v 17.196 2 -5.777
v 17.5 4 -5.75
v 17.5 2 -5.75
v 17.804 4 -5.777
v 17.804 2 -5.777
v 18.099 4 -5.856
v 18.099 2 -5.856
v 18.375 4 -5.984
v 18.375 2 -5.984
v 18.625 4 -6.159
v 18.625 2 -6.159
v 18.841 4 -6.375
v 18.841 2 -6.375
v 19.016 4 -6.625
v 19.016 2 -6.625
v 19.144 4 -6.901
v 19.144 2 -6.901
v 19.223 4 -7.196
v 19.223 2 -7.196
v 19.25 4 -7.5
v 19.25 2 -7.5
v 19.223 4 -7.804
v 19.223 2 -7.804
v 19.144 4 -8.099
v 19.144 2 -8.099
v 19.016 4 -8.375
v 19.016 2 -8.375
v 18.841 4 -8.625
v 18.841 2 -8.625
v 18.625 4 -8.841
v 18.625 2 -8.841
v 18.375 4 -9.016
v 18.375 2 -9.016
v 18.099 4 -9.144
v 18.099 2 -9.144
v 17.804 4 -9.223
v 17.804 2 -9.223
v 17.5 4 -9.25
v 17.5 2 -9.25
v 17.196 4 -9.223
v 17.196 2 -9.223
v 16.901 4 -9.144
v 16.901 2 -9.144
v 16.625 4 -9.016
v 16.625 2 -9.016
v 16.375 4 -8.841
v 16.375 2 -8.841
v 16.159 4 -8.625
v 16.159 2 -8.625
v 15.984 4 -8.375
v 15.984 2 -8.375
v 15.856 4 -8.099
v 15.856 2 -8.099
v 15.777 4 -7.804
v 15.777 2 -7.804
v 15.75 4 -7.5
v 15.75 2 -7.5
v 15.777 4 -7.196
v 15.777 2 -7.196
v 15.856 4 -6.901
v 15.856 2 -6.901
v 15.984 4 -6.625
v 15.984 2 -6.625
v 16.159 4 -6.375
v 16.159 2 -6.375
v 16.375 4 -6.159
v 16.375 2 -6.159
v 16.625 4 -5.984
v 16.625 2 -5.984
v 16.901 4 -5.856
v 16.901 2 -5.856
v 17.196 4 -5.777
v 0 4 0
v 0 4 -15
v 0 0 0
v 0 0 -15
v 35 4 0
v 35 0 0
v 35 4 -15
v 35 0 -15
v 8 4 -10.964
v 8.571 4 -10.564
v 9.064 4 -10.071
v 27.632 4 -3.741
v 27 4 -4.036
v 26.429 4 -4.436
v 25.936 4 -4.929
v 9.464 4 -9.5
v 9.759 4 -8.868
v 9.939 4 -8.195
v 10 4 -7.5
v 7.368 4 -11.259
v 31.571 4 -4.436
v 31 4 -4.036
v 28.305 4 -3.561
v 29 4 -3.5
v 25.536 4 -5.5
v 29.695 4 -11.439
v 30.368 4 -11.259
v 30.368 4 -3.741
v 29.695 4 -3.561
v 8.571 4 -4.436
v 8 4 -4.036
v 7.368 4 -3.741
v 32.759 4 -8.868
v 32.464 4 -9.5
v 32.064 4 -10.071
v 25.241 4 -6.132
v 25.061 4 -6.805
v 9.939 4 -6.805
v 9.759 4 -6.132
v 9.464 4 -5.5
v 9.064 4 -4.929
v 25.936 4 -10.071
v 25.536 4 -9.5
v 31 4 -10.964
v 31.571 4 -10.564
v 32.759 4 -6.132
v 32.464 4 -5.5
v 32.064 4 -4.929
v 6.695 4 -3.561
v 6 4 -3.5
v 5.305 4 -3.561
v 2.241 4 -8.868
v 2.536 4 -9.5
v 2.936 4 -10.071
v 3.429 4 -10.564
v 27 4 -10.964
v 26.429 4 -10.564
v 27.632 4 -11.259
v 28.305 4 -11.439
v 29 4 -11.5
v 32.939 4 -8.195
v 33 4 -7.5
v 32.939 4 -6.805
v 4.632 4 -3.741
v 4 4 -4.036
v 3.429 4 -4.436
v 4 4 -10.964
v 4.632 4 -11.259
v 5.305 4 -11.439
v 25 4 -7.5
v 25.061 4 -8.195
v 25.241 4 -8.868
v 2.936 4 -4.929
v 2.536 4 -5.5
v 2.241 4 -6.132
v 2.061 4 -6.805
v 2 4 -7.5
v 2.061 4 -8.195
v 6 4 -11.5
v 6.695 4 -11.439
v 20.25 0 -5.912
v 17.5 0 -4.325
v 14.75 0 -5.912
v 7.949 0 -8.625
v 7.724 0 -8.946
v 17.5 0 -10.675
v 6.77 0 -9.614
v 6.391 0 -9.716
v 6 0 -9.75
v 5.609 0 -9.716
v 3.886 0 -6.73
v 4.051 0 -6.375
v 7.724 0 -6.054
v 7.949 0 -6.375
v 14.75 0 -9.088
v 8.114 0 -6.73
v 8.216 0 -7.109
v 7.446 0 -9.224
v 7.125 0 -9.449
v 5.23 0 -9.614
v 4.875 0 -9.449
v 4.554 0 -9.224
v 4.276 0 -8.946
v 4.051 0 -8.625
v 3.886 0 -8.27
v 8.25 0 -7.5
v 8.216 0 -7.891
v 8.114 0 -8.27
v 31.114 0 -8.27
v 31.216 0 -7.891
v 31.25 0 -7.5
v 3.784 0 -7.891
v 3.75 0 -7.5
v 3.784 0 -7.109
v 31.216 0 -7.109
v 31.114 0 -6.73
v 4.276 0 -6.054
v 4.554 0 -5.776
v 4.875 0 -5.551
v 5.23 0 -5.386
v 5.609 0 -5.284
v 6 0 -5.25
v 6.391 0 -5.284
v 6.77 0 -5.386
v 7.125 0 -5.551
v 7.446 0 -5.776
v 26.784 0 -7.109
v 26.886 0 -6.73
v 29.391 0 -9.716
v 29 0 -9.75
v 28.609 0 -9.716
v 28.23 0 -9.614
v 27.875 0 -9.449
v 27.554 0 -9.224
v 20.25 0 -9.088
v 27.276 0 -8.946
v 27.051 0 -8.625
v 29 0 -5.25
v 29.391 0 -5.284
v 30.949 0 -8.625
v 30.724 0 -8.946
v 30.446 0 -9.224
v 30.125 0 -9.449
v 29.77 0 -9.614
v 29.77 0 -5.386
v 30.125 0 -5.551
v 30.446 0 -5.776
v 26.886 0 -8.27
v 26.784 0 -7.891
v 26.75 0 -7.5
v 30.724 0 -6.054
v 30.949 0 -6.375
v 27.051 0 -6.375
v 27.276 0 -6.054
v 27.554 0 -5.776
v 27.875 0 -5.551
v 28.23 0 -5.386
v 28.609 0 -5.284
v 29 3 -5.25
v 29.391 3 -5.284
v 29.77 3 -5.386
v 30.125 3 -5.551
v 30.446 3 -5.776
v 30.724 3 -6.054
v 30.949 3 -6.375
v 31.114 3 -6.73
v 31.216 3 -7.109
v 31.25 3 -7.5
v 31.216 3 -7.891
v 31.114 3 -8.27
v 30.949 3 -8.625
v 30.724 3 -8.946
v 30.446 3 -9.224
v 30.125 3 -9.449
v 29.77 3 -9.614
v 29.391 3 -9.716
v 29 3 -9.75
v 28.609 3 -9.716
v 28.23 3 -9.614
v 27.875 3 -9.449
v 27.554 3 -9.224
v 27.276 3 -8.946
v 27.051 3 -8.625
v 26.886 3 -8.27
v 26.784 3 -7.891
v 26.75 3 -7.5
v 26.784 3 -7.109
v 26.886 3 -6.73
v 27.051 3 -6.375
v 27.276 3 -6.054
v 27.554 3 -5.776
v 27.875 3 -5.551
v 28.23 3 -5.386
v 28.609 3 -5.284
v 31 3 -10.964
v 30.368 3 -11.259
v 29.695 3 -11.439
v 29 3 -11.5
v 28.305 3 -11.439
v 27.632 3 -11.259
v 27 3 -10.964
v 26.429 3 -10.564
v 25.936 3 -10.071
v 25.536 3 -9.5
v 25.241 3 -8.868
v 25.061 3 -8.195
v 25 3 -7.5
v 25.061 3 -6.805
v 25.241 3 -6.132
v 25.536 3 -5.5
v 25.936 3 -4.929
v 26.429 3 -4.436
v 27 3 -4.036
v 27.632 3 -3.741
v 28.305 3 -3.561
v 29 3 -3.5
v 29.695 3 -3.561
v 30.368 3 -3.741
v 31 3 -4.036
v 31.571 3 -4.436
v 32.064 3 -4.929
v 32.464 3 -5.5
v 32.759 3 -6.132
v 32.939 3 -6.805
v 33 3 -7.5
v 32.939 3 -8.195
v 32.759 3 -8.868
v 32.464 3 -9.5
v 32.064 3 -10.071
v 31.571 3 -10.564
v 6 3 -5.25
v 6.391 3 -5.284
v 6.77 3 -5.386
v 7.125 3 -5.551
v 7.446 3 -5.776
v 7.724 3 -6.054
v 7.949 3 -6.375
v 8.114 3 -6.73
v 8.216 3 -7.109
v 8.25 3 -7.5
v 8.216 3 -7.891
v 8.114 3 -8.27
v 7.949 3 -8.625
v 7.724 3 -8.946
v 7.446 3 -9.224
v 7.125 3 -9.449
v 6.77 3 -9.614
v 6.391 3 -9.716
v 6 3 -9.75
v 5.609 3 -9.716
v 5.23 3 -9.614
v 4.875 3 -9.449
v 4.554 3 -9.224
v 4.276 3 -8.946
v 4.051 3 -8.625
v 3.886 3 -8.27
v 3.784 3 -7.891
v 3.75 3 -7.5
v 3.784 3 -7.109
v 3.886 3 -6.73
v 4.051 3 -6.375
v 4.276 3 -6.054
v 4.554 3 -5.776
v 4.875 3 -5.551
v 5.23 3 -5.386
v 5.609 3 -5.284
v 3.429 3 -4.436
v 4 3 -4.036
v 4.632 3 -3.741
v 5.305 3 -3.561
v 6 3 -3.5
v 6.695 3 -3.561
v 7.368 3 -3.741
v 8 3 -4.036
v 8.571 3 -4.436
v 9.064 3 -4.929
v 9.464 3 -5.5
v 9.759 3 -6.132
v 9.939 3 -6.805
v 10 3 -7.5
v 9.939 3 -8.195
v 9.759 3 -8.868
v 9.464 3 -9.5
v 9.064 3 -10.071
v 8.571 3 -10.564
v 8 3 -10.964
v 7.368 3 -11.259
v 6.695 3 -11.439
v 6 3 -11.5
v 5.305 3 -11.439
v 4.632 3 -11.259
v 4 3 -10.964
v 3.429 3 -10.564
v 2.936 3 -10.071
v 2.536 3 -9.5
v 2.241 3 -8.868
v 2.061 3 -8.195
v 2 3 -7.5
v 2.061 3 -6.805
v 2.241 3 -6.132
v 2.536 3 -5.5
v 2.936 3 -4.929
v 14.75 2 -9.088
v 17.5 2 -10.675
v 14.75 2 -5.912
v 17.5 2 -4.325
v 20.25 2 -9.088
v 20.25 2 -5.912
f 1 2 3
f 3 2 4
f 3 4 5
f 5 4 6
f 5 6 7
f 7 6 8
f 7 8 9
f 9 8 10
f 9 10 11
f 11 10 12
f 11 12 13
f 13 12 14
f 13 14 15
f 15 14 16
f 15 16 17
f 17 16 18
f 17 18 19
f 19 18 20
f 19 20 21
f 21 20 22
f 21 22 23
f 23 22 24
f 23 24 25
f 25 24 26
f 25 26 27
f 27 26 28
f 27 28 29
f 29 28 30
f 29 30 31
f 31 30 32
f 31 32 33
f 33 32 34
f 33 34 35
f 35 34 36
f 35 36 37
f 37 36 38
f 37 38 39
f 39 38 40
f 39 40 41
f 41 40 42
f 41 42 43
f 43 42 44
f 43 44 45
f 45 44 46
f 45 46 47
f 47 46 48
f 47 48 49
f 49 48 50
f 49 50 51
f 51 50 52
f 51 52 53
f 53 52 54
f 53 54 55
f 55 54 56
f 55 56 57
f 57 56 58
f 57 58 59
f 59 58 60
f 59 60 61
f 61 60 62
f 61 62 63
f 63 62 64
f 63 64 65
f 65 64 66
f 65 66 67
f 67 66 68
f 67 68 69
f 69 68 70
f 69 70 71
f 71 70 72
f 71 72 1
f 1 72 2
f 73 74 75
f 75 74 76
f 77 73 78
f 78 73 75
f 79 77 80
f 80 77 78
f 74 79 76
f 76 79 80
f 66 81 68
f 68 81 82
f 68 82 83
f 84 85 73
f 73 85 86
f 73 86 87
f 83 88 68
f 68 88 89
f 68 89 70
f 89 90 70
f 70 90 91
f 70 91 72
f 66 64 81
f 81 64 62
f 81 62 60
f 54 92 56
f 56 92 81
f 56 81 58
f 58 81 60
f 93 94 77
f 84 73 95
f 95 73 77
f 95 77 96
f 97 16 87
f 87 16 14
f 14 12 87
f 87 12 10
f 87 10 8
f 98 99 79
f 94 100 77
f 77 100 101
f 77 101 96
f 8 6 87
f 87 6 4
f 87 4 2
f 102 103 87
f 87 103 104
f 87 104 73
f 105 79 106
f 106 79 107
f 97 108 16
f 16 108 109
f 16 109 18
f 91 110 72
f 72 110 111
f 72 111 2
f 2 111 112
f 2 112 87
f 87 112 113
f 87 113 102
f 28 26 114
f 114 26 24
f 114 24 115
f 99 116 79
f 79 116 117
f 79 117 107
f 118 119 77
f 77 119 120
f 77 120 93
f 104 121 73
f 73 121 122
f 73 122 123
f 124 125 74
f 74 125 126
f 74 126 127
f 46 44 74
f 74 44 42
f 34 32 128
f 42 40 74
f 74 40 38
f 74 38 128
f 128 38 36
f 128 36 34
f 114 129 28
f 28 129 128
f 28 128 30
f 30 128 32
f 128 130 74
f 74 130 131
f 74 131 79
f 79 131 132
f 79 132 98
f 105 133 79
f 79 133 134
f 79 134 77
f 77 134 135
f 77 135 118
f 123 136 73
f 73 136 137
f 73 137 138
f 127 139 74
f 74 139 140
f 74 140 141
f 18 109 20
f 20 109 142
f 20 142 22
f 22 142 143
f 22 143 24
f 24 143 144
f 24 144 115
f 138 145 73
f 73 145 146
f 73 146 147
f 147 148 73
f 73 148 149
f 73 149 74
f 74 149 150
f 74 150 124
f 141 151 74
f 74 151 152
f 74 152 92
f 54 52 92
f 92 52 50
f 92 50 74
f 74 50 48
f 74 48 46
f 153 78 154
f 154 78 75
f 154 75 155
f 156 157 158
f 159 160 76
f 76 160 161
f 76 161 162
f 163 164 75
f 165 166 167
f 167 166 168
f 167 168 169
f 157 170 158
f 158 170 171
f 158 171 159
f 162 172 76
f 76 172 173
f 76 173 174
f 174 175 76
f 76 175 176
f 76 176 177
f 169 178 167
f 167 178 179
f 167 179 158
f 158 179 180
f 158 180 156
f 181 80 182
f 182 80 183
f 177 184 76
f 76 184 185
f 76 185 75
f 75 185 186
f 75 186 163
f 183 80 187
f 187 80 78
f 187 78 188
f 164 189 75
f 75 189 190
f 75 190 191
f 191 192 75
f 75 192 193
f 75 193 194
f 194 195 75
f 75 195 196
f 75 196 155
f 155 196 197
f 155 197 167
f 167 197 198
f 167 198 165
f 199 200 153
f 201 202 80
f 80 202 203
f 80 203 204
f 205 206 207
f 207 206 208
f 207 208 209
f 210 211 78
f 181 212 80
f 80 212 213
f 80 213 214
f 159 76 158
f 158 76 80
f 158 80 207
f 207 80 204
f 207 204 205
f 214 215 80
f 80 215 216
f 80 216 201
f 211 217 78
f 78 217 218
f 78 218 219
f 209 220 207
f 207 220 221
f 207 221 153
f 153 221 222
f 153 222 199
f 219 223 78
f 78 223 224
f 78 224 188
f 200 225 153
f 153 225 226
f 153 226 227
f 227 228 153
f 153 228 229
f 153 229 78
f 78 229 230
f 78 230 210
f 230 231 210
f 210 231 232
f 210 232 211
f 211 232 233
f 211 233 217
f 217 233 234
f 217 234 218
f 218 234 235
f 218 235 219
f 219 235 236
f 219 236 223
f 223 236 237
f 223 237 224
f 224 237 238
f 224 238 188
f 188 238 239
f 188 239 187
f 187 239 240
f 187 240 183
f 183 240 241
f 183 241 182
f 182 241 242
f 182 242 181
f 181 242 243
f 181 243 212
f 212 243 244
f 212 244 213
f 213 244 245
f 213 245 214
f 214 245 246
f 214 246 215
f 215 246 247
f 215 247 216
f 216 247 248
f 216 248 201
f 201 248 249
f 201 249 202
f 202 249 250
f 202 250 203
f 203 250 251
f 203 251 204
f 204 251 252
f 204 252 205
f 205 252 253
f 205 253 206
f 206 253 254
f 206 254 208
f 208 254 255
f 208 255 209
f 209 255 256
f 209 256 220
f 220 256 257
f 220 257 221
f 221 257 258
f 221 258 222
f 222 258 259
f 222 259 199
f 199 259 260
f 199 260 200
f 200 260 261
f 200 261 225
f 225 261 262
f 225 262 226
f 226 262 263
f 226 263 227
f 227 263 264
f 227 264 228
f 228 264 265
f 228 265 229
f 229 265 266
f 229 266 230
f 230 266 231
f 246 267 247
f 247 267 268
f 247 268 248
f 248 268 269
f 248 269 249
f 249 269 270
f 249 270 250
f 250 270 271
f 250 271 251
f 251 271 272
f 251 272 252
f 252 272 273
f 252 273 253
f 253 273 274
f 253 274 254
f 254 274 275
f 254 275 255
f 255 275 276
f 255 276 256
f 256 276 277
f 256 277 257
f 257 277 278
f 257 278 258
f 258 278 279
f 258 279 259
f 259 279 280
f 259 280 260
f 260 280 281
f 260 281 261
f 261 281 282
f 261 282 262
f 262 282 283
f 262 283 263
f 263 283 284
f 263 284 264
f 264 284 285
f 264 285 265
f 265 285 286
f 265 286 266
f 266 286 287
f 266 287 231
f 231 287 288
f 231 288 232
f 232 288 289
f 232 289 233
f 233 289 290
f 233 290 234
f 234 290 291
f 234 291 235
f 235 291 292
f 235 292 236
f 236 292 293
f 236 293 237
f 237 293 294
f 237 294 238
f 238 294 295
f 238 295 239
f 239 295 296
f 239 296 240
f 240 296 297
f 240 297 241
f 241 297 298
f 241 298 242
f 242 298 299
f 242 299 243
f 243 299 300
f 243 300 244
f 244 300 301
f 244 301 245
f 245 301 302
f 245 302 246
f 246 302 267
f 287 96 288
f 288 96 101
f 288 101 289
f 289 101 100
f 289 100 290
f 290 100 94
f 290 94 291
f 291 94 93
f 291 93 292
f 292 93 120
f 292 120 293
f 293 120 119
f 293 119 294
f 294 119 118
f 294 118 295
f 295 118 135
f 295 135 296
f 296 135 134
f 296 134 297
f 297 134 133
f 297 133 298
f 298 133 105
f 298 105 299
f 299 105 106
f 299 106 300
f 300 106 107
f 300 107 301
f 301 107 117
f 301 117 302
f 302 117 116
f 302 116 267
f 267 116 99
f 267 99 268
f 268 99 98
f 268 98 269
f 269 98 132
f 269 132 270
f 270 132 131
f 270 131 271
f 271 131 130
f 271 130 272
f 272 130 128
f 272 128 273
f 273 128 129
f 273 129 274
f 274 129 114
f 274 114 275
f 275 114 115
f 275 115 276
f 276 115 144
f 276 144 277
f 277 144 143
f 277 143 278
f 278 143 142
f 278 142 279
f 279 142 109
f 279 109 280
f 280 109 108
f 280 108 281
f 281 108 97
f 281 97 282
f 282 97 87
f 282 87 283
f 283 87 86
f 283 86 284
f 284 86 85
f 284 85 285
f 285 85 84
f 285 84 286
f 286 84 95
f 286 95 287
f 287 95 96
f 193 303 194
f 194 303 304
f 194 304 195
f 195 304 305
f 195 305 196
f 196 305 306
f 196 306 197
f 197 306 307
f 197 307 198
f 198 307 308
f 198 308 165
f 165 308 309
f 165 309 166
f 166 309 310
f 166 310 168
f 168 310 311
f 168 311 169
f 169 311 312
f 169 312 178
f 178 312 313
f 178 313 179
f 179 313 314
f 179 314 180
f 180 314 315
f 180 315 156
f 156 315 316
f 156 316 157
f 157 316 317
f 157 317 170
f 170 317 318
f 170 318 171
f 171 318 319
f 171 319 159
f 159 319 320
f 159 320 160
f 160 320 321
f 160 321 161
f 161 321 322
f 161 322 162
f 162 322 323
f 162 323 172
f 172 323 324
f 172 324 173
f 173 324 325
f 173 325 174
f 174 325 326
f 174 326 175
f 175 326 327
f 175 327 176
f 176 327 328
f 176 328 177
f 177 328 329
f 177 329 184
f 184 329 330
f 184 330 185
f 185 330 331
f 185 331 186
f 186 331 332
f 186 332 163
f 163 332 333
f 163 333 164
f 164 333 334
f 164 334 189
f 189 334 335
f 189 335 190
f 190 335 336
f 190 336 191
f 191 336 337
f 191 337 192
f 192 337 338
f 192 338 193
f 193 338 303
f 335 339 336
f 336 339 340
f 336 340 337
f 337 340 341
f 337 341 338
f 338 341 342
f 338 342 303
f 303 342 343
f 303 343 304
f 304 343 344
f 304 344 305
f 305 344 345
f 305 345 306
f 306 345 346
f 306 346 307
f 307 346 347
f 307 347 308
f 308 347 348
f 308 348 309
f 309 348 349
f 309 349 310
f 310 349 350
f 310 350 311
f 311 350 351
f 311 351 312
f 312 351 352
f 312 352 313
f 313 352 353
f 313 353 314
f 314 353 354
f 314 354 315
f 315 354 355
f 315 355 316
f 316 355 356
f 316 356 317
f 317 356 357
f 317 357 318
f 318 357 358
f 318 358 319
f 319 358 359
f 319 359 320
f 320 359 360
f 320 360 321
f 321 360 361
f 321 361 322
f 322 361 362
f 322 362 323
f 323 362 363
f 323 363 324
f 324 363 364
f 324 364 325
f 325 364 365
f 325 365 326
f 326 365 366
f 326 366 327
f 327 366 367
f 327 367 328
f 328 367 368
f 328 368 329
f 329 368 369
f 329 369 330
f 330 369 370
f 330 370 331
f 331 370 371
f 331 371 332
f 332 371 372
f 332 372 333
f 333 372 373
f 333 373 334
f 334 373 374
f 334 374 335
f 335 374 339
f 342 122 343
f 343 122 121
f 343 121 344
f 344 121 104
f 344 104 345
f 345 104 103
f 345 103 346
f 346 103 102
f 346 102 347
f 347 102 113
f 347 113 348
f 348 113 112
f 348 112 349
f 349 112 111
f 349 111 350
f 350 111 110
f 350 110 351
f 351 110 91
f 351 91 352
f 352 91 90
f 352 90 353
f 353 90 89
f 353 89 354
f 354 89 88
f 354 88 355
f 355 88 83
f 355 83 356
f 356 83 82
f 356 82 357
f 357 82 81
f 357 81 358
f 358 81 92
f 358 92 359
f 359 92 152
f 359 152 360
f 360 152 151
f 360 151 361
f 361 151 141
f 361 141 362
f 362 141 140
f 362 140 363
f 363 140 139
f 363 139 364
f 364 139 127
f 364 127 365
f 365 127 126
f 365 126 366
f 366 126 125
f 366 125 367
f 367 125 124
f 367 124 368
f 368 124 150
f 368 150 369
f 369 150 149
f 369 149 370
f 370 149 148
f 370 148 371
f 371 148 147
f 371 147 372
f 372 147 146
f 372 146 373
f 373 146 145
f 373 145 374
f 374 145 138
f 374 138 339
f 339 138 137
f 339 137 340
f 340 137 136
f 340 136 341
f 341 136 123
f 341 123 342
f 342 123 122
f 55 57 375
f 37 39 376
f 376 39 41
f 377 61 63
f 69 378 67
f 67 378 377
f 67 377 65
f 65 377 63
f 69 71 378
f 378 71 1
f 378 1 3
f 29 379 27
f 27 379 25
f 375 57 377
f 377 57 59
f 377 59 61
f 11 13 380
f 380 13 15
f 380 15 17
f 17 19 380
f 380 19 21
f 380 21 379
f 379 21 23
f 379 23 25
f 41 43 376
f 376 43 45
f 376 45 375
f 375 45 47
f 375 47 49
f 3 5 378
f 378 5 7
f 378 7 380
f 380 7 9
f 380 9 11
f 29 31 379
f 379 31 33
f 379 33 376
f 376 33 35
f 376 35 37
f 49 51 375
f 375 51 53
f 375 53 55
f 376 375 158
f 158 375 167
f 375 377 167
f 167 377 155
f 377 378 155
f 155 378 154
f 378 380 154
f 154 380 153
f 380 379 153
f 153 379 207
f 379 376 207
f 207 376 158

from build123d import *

# Parameters (mm, degrees)
SKETCH_1_W                = 35
SKETCH_1_H                = 15
EXTRUDE_1_DEPTH           = 4
HOLE_WIZARD_3_5_3_5_1_D   = 3.5
HOLE_WIZARD_1_D           = 4.5
HOLE_WIZARD_1_CBORE_D     = 8
HOLE_WIZARD_1_CBORE_DEPTH = 1
CUT_EXTRUDE_1_DEPTH       = 2


with BuildPart() as part:
    # 草圖1 → 填料-伸長1 (new body)
    with BuildSketch(Plane(origin=(0, 0, 0), x_dir=(1, 0, 0), z_dir=(0, 1, 0))):
        with Locations((17.5, 7.5)):
            Rectangle(SKETCH_1_W, SKETCH_1_H)
    extrude(amount=EXTRUDE_1_DEPTH)

    # Ø3.5 (3.5) 直徑孔1 (through all)
    with Locations(Plane(origin=(0, 4, 0), x_dir=(1, 0, 0), z_dir=(0, 1, 0))):
        with Locations((17.5, 7.5)):
            Hole(HOLE_WIZARD_3_5_3_5_1_D / 2)

    # 鑽孔1 (through all)
    with Locations(Plane(origin=(0, 4, 0), x_dir=(1, 0, 0), z_dir=(0, 1, 0))):
        with Locations((6, 7.5), (29, 7.5)):
            CounterBoreHole(HOLE_WIZARD_1_D / 2, HOLE_WIZARD_1_CBORE_D / 2, HOLE_WIZARD_1_CBORE_DEPTH)

    # 草圖8 → 除料-伸長1 (cut)
    with BuildSketch(Plane.XZ):
        Polygon((17.5, -10.675426481), (20.25, -9.08771324), (20.25, -5.91228676), (17.5, -4.324573519), (14.75, -5.91228676), (14.75, -9.08771324), align=None)
    extrude(amount=-CUT_EXTRUDE_1_DEPTH, mode=Mode.SUBTRACT)


solid = part.part
